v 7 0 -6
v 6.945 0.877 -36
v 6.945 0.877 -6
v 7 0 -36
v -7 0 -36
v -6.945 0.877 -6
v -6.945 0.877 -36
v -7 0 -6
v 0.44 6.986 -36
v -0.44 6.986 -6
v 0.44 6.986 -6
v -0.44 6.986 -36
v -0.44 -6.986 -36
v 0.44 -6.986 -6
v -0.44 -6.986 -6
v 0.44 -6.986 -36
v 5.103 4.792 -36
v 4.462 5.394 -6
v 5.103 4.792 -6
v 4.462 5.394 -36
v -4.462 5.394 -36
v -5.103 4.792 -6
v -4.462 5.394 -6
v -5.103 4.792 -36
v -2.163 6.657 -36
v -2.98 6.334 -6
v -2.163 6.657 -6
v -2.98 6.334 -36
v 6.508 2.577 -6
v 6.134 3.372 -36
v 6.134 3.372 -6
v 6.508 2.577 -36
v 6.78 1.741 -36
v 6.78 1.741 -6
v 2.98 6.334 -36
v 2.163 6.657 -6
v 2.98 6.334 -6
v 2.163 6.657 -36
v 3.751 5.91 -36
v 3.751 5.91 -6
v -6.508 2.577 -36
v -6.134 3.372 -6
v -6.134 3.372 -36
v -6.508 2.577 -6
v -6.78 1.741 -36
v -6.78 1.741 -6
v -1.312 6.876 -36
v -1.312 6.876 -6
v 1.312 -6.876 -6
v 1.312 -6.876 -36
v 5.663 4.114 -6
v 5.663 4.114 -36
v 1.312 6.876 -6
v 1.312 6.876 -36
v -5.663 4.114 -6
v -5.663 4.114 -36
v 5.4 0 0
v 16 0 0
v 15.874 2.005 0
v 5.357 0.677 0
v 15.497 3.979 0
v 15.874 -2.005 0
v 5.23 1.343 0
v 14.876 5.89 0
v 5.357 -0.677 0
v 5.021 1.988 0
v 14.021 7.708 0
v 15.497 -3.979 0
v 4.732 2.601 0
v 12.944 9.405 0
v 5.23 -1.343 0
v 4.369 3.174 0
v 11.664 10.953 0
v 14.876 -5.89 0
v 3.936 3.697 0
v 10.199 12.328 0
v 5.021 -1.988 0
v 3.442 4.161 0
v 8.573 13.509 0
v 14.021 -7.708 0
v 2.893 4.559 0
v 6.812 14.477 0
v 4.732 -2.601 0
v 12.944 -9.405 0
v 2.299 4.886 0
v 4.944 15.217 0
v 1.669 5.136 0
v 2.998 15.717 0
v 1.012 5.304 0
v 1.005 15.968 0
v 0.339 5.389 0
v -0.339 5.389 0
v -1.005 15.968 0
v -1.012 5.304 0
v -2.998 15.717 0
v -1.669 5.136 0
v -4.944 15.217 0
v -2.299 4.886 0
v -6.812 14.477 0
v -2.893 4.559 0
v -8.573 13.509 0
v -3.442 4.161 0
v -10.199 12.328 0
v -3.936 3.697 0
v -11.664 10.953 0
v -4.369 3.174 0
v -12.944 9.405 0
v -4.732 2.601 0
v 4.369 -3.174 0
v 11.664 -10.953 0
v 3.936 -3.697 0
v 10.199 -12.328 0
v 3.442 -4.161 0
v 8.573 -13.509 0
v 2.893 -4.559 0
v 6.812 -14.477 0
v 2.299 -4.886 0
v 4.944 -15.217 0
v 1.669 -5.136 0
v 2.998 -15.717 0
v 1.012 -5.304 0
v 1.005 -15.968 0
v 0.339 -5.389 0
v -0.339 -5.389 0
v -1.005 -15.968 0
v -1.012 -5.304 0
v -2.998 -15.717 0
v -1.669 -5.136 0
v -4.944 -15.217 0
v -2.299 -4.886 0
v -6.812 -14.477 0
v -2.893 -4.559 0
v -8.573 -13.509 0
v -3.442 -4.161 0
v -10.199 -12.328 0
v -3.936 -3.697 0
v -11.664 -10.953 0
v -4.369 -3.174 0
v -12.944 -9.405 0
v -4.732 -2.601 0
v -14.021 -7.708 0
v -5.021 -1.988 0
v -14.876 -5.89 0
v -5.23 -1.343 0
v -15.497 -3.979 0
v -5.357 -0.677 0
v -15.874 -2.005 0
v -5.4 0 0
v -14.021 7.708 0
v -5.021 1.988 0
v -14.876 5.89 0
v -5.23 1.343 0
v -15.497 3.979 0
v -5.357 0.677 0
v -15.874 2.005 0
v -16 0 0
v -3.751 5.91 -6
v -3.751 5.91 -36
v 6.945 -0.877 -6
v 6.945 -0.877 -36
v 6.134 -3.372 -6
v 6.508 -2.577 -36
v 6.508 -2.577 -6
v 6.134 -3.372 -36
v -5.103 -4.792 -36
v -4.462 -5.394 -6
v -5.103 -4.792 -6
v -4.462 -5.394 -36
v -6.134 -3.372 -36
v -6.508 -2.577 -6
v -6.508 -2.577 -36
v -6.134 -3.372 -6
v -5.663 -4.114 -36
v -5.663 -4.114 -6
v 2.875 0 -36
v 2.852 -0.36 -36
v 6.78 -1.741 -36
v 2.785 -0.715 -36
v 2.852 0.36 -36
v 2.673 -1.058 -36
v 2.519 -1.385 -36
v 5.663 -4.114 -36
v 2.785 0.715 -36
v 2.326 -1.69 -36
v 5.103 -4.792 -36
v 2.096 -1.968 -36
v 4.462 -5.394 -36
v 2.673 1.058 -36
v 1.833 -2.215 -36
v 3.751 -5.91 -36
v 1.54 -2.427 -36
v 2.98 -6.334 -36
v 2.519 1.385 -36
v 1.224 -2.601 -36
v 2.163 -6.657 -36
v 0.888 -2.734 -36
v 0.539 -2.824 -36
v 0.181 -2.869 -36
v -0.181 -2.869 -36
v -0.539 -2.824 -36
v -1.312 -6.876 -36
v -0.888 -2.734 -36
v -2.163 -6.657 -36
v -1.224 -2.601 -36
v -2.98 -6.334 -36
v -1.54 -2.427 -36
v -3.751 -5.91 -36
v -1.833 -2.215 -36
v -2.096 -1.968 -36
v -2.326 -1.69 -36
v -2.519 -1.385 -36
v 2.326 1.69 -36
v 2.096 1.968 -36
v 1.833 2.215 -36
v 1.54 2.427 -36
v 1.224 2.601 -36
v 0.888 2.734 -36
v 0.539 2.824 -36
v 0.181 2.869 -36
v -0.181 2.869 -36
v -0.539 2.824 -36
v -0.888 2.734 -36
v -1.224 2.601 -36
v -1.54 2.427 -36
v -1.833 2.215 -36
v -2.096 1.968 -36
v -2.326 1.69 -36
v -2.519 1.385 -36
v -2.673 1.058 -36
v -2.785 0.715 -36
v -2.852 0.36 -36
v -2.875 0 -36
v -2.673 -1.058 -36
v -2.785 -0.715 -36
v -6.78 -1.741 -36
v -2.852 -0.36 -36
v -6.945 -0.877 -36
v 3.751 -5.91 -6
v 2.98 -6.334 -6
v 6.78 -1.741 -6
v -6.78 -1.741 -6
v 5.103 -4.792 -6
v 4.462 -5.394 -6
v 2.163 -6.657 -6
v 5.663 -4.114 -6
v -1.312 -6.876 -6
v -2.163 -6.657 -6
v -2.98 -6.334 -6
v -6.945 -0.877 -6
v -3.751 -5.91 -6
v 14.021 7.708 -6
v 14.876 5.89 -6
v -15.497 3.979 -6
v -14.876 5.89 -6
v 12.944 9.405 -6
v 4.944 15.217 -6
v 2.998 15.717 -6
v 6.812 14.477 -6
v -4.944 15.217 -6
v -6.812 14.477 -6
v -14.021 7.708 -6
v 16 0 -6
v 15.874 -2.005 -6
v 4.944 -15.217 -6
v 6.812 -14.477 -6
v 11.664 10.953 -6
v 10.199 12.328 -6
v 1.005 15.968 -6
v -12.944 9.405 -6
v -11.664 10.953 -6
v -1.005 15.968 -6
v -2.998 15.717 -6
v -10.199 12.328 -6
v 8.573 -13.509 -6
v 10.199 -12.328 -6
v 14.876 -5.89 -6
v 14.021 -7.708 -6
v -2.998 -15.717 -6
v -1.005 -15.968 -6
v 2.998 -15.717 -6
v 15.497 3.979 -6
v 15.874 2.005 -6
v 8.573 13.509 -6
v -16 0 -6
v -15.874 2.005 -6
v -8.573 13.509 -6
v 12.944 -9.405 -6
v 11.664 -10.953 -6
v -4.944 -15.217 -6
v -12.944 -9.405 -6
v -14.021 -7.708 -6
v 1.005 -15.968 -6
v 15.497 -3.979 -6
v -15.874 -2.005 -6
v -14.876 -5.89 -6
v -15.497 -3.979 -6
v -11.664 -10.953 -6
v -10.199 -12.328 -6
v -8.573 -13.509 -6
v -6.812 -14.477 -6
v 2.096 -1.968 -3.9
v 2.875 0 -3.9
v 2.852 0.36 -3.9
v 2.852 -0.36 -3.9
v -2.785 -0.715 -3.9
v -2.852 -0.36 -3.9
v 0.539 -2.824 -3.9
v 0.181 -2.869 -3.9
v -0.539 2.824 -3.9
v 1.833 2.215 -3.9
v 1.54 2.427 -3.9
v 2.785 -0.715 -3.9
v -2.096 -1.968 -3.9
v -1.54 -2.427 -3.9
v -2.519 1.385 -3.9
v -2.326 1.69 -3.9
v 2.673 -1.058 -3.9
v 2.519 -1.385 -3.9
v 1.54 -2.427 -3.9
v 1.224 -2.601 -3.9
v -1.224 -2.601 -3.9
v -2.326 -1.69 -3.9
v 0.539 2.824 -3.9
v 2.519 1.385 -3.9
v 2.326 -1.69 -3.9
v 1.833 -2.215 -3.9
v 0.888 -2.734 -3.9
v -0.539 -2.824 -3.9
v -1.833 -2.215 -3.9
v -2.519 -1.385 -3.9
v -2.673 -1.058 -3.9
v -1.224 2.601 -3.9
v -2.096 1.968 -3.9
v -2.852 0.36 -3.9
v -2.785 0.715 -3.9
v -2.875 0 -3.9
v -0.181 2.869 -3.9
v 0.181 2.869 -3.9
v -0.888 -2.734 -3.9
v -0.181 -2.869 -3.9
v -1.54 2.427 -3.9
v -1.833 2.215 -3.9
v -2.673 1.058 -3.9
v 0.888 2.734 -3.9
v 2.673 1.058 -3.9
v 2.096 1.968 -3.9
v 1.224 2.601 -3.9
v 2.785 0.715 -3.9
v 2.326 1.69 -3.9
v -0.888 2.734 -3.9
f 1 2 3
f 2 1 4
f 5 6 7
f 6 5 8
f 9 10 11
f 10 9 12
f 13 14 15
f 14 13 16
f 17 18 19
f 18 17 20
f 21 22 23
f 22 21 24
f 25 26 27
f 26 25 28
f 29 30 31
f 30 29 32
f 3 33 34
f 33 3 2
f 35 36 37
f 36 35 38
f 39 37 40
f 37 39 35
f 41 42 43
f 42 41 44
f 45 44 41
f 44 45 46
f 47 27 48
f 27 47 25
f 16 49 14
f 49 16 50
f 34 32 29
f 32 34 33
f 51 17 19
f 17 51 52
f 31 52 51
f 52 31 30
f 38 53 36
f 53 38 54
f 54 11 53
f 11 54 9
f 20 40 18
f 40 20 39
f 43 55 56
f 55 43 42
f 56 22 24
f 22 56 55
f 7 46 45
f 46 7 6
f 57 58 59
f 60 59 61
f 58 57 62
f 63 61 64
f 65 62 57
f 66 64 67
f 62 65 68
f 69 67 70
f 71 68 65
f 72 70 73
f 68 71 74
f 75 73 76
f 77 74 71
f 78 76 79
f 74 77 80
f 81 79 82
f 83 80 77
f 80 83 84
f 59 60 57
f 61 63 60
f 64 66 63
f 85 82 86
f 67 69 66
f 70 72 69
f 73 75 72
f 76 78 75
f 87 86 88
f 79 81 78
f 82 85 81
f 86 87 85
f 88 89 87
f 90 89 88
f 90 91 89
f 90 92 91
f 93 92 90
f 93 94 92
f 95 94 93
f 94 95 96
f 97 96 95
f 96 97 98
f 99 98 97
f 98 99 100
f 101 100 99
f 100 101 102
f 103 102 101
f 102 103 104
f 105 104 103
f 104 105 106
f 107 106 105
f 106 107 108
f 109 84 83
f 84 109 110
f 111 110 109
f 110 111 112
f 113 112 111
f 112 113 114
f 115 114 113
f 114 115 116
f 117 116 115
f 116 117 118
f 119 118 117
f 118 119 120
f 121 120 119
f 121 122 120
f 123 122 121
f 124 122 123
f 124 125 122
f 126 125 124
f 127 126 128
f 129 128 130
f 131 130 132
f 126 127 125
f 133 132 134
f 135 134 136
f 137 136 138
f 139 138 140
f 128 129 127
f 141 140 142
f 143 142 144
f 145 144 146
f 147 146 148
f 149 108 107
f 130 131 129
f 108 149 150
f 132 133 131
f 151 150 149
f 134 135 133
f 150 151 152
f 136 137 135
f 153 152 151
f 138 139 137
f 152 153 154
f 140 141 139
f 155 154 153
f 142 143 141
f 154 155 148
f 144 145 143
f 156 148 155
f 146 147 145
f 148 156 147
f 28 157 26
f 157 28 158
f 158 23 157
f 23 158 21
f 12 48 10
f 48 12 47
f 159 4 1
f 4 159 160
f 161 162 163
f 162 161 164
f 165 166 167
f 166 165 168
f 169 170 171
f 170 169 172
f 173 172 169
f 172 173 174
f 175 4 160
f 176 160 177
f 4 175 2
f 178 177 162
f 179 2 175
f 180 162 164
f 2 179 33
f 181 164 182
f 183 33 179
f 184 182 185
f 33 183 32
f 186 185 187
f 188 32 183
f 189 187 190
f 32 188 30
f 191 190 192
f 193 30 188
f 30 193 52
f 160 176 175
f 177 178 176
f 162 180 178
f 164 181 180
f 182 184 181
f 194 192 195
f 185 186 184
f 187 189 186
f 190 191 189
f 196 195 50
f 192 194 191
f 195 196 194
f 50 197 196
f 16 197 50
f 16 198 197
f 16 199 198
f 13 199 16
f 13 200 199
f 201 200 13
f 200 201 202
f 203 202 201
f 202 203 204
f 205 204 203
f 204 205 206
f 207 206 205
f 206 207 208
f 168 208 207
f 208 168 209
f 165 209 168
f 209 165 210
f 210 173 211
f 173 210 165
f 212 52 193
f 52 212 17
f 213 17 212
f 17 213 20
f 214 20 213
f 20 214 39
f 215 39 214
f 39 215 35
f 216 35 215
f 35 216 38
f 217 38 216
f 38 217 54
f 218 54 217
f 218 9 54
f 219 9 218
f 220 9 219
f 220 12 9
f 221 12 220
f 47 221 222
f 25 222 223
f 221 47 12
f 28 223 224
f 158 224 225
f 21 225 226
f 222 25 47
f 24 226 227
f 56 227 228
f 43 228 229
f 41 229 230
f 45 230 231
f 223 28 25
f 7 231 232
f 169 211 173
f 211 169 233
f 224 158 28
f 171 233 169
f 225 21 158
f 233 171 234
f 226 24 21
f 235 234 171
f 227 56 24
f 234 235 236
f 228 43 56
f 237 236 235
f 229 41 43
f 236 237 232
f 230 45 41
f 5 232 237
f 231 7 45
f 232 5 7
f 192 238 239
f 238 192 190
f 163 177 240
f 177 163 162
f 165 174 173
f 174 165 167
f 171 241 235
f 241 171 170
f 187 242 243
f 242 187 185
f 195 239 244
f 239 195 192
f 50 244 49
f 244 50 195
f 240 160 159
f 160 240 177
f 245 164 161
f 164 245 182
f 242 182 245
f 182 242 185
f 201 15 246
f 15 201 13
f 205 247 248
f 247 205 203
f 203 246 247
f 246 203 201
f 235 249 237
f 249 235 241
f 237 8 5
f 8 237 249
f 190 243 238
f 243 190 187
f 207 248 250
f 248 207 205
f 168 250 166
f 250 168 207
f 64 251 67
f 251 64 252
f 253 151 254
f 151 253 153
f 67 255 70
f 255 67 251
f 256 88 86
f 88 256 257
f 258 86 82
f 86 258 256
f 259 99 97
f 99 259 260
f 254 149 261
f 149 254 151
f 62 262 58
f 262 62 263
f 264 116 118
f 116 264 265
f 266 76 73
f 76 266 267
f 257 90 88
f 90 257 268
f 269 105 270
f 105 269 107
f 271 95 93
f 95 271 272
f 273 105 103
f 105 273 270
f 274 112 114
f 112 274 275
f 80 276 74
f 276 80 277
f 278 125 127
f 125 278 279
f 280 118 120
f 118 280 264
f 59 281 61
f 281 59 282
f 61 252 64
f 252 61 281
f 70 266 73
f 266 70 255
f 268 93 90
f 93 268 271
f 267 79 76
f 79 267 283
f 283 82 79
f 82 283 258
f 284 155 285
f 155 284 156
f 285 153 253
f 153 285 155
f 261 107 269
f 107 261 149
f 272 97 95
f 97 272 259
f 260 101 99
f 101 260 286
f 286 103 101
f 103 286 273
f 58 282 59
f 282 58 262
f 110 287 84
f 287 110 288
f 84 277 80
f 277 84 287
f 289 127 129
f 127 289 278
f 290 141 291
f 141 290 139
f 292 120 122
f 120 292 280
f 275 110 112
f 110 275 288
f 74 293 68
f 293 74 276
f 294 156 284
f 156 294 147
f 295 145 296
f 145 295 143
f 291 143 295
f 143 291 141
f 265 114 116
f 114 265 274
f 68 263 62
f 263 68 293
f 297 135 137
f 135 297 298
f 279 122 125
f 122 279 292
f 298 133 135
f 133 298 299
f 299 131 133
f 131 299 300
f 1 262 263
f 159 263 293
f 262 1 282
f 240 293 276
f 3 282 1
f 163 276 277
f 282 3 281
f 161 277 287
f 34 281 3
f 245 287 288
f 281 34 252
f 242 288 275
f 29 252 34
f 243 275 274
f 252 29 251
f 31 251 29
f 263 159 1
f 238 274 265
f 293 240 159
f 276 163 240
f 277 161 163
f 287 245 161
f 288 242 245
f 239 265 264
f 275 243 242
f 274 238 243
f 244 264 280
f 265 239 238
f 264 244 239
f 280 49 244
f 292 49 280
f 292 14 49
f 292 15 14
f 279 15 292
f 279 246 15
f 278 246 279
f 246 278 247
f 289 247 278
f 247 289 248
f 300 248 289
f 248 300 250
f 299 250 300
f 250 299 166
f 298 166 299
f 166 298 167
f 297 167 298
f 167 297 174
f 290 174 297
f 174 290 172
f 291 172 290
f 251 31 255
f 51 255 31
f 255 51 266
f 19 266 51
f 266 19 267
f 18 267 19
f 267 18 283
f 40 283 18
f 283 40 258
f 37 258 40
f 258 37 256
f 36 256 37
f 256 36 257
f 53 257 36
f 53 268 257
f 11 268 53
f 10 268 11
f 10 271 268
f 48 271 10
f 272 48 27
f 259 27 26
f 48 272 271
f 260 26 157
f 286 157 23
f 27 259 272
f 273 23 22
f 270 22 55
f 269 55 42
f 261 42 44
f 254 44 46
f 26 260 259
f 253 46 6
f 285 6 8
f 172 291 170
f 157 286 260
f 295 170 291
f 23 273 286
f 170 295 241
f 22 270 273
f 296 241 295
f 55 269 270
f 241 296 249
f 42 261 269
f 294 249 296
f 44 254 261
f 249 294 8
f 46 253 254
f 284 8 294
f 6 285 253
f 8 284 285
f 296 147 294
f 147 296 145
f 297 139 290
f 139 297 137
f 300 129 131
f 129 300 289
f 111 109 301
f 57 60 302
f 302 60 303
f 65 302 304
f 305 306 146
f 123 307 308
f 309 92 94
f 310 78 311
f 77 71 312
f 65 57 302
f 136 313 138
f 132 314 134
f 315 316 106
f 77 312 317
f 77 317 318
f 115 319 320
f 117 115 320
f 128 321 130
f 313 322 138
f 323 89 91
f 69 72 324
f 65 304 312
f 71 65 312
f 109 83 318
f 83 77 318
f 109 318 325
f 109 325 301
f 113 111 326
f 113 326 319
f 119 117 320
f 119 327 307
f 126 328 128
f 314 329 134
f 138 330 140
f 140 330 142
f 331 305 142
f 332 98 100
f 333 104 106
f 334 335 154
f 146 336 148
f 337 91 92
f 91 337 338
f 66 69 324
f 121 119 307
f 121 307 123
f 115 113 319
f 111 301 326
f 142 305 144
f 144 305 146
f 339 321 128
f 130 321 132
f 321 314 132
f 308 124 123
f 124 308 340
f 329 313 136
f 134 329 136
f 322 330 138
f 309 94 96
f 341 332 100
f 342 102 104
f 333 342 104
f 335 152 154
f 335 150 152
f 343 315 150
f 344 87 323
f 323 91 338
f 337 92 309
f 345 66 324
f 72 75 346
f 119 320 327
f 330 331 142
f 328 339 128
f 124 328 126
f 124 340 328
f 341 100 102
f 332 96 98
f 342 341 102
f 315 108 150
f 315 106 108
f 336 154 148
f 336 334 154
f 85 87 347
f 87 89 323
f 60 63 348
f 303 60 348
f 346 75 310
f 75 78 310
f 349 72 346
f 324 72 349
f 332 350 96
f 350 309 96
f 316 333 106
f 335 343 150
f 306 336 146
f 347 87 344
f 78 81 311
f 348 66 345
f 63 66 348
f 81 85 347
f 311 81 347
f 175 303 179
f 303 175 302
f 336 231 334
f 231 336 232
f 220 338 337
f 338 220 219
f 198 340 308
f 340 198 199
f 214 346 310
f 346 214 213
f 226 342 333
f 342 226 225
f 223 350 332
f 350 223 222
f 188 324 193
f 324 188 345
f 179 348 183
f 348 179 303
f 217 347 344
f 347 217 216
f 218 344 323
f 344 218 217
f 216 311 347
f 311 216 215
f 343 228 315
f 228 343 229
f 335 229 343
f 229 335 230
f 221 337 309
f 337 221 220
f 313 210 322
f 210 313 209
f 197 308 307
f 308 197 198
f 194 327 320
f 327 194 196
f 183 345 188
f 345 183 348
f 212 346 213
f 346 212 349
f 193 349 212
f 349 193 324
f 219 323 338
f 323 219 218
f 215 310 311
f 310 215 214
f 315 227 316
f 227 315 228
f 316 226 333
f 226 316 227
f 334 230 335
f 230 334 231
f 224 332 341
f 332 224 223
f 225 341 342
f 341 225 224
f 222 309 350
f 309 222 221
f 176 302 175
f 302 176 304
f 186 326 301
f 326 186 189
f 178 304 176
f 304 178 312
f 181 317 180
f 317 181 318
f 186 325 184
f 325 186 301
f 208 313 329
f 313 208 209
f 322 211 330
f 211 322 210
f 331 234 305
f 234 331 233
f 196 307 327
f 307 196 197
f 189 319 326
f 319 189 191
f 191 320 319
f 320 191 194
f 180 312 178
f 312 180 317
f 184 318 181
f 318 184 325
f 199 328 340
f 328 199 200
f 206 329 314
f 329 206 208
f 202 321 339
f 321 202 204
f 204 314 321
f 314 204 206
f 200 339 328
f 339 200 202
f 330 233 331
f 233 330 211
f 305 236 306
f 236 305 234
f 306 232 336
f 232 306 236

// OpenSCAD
$fn = 50;


difference() {
	union() {
		translate(v = [0, 0, -36.0000000000]) {
			cylinder(h = 36, r = 7.0000000000);
		}
		translate(v = [0, 0, -6.0000000000]) {
			cylinder(h = 6, r = 16.0000000000);
		}
	}
	union() {
		translate(v = [0, 0, 0]) {
			rotate(a = [0, 0, 0]) {
				difference() {
					union() {
						#translate(v = [0, 0, -36.0000000000]) {
							cylinder(h = 36, r = 2.6000000000);
						}
						#translate(v = [0, 0, -3.9000000000]) {
							cylinder(h = 3.9000000000, r = 7.0000000000, r1 = 2.8750000000, r2 = 5.4000000000);
						}
						#translate(v = [0, 0, -36.0000000000]) {
							cylinder(h = 36, r = 2.8750000000);
						}
						#translate(v = [0, 0, -36.0000000000]) {
							cylinder(h = 36, r = 2.6000000000);
						}
					}
					union();
				}
			}
		}
	}
}
